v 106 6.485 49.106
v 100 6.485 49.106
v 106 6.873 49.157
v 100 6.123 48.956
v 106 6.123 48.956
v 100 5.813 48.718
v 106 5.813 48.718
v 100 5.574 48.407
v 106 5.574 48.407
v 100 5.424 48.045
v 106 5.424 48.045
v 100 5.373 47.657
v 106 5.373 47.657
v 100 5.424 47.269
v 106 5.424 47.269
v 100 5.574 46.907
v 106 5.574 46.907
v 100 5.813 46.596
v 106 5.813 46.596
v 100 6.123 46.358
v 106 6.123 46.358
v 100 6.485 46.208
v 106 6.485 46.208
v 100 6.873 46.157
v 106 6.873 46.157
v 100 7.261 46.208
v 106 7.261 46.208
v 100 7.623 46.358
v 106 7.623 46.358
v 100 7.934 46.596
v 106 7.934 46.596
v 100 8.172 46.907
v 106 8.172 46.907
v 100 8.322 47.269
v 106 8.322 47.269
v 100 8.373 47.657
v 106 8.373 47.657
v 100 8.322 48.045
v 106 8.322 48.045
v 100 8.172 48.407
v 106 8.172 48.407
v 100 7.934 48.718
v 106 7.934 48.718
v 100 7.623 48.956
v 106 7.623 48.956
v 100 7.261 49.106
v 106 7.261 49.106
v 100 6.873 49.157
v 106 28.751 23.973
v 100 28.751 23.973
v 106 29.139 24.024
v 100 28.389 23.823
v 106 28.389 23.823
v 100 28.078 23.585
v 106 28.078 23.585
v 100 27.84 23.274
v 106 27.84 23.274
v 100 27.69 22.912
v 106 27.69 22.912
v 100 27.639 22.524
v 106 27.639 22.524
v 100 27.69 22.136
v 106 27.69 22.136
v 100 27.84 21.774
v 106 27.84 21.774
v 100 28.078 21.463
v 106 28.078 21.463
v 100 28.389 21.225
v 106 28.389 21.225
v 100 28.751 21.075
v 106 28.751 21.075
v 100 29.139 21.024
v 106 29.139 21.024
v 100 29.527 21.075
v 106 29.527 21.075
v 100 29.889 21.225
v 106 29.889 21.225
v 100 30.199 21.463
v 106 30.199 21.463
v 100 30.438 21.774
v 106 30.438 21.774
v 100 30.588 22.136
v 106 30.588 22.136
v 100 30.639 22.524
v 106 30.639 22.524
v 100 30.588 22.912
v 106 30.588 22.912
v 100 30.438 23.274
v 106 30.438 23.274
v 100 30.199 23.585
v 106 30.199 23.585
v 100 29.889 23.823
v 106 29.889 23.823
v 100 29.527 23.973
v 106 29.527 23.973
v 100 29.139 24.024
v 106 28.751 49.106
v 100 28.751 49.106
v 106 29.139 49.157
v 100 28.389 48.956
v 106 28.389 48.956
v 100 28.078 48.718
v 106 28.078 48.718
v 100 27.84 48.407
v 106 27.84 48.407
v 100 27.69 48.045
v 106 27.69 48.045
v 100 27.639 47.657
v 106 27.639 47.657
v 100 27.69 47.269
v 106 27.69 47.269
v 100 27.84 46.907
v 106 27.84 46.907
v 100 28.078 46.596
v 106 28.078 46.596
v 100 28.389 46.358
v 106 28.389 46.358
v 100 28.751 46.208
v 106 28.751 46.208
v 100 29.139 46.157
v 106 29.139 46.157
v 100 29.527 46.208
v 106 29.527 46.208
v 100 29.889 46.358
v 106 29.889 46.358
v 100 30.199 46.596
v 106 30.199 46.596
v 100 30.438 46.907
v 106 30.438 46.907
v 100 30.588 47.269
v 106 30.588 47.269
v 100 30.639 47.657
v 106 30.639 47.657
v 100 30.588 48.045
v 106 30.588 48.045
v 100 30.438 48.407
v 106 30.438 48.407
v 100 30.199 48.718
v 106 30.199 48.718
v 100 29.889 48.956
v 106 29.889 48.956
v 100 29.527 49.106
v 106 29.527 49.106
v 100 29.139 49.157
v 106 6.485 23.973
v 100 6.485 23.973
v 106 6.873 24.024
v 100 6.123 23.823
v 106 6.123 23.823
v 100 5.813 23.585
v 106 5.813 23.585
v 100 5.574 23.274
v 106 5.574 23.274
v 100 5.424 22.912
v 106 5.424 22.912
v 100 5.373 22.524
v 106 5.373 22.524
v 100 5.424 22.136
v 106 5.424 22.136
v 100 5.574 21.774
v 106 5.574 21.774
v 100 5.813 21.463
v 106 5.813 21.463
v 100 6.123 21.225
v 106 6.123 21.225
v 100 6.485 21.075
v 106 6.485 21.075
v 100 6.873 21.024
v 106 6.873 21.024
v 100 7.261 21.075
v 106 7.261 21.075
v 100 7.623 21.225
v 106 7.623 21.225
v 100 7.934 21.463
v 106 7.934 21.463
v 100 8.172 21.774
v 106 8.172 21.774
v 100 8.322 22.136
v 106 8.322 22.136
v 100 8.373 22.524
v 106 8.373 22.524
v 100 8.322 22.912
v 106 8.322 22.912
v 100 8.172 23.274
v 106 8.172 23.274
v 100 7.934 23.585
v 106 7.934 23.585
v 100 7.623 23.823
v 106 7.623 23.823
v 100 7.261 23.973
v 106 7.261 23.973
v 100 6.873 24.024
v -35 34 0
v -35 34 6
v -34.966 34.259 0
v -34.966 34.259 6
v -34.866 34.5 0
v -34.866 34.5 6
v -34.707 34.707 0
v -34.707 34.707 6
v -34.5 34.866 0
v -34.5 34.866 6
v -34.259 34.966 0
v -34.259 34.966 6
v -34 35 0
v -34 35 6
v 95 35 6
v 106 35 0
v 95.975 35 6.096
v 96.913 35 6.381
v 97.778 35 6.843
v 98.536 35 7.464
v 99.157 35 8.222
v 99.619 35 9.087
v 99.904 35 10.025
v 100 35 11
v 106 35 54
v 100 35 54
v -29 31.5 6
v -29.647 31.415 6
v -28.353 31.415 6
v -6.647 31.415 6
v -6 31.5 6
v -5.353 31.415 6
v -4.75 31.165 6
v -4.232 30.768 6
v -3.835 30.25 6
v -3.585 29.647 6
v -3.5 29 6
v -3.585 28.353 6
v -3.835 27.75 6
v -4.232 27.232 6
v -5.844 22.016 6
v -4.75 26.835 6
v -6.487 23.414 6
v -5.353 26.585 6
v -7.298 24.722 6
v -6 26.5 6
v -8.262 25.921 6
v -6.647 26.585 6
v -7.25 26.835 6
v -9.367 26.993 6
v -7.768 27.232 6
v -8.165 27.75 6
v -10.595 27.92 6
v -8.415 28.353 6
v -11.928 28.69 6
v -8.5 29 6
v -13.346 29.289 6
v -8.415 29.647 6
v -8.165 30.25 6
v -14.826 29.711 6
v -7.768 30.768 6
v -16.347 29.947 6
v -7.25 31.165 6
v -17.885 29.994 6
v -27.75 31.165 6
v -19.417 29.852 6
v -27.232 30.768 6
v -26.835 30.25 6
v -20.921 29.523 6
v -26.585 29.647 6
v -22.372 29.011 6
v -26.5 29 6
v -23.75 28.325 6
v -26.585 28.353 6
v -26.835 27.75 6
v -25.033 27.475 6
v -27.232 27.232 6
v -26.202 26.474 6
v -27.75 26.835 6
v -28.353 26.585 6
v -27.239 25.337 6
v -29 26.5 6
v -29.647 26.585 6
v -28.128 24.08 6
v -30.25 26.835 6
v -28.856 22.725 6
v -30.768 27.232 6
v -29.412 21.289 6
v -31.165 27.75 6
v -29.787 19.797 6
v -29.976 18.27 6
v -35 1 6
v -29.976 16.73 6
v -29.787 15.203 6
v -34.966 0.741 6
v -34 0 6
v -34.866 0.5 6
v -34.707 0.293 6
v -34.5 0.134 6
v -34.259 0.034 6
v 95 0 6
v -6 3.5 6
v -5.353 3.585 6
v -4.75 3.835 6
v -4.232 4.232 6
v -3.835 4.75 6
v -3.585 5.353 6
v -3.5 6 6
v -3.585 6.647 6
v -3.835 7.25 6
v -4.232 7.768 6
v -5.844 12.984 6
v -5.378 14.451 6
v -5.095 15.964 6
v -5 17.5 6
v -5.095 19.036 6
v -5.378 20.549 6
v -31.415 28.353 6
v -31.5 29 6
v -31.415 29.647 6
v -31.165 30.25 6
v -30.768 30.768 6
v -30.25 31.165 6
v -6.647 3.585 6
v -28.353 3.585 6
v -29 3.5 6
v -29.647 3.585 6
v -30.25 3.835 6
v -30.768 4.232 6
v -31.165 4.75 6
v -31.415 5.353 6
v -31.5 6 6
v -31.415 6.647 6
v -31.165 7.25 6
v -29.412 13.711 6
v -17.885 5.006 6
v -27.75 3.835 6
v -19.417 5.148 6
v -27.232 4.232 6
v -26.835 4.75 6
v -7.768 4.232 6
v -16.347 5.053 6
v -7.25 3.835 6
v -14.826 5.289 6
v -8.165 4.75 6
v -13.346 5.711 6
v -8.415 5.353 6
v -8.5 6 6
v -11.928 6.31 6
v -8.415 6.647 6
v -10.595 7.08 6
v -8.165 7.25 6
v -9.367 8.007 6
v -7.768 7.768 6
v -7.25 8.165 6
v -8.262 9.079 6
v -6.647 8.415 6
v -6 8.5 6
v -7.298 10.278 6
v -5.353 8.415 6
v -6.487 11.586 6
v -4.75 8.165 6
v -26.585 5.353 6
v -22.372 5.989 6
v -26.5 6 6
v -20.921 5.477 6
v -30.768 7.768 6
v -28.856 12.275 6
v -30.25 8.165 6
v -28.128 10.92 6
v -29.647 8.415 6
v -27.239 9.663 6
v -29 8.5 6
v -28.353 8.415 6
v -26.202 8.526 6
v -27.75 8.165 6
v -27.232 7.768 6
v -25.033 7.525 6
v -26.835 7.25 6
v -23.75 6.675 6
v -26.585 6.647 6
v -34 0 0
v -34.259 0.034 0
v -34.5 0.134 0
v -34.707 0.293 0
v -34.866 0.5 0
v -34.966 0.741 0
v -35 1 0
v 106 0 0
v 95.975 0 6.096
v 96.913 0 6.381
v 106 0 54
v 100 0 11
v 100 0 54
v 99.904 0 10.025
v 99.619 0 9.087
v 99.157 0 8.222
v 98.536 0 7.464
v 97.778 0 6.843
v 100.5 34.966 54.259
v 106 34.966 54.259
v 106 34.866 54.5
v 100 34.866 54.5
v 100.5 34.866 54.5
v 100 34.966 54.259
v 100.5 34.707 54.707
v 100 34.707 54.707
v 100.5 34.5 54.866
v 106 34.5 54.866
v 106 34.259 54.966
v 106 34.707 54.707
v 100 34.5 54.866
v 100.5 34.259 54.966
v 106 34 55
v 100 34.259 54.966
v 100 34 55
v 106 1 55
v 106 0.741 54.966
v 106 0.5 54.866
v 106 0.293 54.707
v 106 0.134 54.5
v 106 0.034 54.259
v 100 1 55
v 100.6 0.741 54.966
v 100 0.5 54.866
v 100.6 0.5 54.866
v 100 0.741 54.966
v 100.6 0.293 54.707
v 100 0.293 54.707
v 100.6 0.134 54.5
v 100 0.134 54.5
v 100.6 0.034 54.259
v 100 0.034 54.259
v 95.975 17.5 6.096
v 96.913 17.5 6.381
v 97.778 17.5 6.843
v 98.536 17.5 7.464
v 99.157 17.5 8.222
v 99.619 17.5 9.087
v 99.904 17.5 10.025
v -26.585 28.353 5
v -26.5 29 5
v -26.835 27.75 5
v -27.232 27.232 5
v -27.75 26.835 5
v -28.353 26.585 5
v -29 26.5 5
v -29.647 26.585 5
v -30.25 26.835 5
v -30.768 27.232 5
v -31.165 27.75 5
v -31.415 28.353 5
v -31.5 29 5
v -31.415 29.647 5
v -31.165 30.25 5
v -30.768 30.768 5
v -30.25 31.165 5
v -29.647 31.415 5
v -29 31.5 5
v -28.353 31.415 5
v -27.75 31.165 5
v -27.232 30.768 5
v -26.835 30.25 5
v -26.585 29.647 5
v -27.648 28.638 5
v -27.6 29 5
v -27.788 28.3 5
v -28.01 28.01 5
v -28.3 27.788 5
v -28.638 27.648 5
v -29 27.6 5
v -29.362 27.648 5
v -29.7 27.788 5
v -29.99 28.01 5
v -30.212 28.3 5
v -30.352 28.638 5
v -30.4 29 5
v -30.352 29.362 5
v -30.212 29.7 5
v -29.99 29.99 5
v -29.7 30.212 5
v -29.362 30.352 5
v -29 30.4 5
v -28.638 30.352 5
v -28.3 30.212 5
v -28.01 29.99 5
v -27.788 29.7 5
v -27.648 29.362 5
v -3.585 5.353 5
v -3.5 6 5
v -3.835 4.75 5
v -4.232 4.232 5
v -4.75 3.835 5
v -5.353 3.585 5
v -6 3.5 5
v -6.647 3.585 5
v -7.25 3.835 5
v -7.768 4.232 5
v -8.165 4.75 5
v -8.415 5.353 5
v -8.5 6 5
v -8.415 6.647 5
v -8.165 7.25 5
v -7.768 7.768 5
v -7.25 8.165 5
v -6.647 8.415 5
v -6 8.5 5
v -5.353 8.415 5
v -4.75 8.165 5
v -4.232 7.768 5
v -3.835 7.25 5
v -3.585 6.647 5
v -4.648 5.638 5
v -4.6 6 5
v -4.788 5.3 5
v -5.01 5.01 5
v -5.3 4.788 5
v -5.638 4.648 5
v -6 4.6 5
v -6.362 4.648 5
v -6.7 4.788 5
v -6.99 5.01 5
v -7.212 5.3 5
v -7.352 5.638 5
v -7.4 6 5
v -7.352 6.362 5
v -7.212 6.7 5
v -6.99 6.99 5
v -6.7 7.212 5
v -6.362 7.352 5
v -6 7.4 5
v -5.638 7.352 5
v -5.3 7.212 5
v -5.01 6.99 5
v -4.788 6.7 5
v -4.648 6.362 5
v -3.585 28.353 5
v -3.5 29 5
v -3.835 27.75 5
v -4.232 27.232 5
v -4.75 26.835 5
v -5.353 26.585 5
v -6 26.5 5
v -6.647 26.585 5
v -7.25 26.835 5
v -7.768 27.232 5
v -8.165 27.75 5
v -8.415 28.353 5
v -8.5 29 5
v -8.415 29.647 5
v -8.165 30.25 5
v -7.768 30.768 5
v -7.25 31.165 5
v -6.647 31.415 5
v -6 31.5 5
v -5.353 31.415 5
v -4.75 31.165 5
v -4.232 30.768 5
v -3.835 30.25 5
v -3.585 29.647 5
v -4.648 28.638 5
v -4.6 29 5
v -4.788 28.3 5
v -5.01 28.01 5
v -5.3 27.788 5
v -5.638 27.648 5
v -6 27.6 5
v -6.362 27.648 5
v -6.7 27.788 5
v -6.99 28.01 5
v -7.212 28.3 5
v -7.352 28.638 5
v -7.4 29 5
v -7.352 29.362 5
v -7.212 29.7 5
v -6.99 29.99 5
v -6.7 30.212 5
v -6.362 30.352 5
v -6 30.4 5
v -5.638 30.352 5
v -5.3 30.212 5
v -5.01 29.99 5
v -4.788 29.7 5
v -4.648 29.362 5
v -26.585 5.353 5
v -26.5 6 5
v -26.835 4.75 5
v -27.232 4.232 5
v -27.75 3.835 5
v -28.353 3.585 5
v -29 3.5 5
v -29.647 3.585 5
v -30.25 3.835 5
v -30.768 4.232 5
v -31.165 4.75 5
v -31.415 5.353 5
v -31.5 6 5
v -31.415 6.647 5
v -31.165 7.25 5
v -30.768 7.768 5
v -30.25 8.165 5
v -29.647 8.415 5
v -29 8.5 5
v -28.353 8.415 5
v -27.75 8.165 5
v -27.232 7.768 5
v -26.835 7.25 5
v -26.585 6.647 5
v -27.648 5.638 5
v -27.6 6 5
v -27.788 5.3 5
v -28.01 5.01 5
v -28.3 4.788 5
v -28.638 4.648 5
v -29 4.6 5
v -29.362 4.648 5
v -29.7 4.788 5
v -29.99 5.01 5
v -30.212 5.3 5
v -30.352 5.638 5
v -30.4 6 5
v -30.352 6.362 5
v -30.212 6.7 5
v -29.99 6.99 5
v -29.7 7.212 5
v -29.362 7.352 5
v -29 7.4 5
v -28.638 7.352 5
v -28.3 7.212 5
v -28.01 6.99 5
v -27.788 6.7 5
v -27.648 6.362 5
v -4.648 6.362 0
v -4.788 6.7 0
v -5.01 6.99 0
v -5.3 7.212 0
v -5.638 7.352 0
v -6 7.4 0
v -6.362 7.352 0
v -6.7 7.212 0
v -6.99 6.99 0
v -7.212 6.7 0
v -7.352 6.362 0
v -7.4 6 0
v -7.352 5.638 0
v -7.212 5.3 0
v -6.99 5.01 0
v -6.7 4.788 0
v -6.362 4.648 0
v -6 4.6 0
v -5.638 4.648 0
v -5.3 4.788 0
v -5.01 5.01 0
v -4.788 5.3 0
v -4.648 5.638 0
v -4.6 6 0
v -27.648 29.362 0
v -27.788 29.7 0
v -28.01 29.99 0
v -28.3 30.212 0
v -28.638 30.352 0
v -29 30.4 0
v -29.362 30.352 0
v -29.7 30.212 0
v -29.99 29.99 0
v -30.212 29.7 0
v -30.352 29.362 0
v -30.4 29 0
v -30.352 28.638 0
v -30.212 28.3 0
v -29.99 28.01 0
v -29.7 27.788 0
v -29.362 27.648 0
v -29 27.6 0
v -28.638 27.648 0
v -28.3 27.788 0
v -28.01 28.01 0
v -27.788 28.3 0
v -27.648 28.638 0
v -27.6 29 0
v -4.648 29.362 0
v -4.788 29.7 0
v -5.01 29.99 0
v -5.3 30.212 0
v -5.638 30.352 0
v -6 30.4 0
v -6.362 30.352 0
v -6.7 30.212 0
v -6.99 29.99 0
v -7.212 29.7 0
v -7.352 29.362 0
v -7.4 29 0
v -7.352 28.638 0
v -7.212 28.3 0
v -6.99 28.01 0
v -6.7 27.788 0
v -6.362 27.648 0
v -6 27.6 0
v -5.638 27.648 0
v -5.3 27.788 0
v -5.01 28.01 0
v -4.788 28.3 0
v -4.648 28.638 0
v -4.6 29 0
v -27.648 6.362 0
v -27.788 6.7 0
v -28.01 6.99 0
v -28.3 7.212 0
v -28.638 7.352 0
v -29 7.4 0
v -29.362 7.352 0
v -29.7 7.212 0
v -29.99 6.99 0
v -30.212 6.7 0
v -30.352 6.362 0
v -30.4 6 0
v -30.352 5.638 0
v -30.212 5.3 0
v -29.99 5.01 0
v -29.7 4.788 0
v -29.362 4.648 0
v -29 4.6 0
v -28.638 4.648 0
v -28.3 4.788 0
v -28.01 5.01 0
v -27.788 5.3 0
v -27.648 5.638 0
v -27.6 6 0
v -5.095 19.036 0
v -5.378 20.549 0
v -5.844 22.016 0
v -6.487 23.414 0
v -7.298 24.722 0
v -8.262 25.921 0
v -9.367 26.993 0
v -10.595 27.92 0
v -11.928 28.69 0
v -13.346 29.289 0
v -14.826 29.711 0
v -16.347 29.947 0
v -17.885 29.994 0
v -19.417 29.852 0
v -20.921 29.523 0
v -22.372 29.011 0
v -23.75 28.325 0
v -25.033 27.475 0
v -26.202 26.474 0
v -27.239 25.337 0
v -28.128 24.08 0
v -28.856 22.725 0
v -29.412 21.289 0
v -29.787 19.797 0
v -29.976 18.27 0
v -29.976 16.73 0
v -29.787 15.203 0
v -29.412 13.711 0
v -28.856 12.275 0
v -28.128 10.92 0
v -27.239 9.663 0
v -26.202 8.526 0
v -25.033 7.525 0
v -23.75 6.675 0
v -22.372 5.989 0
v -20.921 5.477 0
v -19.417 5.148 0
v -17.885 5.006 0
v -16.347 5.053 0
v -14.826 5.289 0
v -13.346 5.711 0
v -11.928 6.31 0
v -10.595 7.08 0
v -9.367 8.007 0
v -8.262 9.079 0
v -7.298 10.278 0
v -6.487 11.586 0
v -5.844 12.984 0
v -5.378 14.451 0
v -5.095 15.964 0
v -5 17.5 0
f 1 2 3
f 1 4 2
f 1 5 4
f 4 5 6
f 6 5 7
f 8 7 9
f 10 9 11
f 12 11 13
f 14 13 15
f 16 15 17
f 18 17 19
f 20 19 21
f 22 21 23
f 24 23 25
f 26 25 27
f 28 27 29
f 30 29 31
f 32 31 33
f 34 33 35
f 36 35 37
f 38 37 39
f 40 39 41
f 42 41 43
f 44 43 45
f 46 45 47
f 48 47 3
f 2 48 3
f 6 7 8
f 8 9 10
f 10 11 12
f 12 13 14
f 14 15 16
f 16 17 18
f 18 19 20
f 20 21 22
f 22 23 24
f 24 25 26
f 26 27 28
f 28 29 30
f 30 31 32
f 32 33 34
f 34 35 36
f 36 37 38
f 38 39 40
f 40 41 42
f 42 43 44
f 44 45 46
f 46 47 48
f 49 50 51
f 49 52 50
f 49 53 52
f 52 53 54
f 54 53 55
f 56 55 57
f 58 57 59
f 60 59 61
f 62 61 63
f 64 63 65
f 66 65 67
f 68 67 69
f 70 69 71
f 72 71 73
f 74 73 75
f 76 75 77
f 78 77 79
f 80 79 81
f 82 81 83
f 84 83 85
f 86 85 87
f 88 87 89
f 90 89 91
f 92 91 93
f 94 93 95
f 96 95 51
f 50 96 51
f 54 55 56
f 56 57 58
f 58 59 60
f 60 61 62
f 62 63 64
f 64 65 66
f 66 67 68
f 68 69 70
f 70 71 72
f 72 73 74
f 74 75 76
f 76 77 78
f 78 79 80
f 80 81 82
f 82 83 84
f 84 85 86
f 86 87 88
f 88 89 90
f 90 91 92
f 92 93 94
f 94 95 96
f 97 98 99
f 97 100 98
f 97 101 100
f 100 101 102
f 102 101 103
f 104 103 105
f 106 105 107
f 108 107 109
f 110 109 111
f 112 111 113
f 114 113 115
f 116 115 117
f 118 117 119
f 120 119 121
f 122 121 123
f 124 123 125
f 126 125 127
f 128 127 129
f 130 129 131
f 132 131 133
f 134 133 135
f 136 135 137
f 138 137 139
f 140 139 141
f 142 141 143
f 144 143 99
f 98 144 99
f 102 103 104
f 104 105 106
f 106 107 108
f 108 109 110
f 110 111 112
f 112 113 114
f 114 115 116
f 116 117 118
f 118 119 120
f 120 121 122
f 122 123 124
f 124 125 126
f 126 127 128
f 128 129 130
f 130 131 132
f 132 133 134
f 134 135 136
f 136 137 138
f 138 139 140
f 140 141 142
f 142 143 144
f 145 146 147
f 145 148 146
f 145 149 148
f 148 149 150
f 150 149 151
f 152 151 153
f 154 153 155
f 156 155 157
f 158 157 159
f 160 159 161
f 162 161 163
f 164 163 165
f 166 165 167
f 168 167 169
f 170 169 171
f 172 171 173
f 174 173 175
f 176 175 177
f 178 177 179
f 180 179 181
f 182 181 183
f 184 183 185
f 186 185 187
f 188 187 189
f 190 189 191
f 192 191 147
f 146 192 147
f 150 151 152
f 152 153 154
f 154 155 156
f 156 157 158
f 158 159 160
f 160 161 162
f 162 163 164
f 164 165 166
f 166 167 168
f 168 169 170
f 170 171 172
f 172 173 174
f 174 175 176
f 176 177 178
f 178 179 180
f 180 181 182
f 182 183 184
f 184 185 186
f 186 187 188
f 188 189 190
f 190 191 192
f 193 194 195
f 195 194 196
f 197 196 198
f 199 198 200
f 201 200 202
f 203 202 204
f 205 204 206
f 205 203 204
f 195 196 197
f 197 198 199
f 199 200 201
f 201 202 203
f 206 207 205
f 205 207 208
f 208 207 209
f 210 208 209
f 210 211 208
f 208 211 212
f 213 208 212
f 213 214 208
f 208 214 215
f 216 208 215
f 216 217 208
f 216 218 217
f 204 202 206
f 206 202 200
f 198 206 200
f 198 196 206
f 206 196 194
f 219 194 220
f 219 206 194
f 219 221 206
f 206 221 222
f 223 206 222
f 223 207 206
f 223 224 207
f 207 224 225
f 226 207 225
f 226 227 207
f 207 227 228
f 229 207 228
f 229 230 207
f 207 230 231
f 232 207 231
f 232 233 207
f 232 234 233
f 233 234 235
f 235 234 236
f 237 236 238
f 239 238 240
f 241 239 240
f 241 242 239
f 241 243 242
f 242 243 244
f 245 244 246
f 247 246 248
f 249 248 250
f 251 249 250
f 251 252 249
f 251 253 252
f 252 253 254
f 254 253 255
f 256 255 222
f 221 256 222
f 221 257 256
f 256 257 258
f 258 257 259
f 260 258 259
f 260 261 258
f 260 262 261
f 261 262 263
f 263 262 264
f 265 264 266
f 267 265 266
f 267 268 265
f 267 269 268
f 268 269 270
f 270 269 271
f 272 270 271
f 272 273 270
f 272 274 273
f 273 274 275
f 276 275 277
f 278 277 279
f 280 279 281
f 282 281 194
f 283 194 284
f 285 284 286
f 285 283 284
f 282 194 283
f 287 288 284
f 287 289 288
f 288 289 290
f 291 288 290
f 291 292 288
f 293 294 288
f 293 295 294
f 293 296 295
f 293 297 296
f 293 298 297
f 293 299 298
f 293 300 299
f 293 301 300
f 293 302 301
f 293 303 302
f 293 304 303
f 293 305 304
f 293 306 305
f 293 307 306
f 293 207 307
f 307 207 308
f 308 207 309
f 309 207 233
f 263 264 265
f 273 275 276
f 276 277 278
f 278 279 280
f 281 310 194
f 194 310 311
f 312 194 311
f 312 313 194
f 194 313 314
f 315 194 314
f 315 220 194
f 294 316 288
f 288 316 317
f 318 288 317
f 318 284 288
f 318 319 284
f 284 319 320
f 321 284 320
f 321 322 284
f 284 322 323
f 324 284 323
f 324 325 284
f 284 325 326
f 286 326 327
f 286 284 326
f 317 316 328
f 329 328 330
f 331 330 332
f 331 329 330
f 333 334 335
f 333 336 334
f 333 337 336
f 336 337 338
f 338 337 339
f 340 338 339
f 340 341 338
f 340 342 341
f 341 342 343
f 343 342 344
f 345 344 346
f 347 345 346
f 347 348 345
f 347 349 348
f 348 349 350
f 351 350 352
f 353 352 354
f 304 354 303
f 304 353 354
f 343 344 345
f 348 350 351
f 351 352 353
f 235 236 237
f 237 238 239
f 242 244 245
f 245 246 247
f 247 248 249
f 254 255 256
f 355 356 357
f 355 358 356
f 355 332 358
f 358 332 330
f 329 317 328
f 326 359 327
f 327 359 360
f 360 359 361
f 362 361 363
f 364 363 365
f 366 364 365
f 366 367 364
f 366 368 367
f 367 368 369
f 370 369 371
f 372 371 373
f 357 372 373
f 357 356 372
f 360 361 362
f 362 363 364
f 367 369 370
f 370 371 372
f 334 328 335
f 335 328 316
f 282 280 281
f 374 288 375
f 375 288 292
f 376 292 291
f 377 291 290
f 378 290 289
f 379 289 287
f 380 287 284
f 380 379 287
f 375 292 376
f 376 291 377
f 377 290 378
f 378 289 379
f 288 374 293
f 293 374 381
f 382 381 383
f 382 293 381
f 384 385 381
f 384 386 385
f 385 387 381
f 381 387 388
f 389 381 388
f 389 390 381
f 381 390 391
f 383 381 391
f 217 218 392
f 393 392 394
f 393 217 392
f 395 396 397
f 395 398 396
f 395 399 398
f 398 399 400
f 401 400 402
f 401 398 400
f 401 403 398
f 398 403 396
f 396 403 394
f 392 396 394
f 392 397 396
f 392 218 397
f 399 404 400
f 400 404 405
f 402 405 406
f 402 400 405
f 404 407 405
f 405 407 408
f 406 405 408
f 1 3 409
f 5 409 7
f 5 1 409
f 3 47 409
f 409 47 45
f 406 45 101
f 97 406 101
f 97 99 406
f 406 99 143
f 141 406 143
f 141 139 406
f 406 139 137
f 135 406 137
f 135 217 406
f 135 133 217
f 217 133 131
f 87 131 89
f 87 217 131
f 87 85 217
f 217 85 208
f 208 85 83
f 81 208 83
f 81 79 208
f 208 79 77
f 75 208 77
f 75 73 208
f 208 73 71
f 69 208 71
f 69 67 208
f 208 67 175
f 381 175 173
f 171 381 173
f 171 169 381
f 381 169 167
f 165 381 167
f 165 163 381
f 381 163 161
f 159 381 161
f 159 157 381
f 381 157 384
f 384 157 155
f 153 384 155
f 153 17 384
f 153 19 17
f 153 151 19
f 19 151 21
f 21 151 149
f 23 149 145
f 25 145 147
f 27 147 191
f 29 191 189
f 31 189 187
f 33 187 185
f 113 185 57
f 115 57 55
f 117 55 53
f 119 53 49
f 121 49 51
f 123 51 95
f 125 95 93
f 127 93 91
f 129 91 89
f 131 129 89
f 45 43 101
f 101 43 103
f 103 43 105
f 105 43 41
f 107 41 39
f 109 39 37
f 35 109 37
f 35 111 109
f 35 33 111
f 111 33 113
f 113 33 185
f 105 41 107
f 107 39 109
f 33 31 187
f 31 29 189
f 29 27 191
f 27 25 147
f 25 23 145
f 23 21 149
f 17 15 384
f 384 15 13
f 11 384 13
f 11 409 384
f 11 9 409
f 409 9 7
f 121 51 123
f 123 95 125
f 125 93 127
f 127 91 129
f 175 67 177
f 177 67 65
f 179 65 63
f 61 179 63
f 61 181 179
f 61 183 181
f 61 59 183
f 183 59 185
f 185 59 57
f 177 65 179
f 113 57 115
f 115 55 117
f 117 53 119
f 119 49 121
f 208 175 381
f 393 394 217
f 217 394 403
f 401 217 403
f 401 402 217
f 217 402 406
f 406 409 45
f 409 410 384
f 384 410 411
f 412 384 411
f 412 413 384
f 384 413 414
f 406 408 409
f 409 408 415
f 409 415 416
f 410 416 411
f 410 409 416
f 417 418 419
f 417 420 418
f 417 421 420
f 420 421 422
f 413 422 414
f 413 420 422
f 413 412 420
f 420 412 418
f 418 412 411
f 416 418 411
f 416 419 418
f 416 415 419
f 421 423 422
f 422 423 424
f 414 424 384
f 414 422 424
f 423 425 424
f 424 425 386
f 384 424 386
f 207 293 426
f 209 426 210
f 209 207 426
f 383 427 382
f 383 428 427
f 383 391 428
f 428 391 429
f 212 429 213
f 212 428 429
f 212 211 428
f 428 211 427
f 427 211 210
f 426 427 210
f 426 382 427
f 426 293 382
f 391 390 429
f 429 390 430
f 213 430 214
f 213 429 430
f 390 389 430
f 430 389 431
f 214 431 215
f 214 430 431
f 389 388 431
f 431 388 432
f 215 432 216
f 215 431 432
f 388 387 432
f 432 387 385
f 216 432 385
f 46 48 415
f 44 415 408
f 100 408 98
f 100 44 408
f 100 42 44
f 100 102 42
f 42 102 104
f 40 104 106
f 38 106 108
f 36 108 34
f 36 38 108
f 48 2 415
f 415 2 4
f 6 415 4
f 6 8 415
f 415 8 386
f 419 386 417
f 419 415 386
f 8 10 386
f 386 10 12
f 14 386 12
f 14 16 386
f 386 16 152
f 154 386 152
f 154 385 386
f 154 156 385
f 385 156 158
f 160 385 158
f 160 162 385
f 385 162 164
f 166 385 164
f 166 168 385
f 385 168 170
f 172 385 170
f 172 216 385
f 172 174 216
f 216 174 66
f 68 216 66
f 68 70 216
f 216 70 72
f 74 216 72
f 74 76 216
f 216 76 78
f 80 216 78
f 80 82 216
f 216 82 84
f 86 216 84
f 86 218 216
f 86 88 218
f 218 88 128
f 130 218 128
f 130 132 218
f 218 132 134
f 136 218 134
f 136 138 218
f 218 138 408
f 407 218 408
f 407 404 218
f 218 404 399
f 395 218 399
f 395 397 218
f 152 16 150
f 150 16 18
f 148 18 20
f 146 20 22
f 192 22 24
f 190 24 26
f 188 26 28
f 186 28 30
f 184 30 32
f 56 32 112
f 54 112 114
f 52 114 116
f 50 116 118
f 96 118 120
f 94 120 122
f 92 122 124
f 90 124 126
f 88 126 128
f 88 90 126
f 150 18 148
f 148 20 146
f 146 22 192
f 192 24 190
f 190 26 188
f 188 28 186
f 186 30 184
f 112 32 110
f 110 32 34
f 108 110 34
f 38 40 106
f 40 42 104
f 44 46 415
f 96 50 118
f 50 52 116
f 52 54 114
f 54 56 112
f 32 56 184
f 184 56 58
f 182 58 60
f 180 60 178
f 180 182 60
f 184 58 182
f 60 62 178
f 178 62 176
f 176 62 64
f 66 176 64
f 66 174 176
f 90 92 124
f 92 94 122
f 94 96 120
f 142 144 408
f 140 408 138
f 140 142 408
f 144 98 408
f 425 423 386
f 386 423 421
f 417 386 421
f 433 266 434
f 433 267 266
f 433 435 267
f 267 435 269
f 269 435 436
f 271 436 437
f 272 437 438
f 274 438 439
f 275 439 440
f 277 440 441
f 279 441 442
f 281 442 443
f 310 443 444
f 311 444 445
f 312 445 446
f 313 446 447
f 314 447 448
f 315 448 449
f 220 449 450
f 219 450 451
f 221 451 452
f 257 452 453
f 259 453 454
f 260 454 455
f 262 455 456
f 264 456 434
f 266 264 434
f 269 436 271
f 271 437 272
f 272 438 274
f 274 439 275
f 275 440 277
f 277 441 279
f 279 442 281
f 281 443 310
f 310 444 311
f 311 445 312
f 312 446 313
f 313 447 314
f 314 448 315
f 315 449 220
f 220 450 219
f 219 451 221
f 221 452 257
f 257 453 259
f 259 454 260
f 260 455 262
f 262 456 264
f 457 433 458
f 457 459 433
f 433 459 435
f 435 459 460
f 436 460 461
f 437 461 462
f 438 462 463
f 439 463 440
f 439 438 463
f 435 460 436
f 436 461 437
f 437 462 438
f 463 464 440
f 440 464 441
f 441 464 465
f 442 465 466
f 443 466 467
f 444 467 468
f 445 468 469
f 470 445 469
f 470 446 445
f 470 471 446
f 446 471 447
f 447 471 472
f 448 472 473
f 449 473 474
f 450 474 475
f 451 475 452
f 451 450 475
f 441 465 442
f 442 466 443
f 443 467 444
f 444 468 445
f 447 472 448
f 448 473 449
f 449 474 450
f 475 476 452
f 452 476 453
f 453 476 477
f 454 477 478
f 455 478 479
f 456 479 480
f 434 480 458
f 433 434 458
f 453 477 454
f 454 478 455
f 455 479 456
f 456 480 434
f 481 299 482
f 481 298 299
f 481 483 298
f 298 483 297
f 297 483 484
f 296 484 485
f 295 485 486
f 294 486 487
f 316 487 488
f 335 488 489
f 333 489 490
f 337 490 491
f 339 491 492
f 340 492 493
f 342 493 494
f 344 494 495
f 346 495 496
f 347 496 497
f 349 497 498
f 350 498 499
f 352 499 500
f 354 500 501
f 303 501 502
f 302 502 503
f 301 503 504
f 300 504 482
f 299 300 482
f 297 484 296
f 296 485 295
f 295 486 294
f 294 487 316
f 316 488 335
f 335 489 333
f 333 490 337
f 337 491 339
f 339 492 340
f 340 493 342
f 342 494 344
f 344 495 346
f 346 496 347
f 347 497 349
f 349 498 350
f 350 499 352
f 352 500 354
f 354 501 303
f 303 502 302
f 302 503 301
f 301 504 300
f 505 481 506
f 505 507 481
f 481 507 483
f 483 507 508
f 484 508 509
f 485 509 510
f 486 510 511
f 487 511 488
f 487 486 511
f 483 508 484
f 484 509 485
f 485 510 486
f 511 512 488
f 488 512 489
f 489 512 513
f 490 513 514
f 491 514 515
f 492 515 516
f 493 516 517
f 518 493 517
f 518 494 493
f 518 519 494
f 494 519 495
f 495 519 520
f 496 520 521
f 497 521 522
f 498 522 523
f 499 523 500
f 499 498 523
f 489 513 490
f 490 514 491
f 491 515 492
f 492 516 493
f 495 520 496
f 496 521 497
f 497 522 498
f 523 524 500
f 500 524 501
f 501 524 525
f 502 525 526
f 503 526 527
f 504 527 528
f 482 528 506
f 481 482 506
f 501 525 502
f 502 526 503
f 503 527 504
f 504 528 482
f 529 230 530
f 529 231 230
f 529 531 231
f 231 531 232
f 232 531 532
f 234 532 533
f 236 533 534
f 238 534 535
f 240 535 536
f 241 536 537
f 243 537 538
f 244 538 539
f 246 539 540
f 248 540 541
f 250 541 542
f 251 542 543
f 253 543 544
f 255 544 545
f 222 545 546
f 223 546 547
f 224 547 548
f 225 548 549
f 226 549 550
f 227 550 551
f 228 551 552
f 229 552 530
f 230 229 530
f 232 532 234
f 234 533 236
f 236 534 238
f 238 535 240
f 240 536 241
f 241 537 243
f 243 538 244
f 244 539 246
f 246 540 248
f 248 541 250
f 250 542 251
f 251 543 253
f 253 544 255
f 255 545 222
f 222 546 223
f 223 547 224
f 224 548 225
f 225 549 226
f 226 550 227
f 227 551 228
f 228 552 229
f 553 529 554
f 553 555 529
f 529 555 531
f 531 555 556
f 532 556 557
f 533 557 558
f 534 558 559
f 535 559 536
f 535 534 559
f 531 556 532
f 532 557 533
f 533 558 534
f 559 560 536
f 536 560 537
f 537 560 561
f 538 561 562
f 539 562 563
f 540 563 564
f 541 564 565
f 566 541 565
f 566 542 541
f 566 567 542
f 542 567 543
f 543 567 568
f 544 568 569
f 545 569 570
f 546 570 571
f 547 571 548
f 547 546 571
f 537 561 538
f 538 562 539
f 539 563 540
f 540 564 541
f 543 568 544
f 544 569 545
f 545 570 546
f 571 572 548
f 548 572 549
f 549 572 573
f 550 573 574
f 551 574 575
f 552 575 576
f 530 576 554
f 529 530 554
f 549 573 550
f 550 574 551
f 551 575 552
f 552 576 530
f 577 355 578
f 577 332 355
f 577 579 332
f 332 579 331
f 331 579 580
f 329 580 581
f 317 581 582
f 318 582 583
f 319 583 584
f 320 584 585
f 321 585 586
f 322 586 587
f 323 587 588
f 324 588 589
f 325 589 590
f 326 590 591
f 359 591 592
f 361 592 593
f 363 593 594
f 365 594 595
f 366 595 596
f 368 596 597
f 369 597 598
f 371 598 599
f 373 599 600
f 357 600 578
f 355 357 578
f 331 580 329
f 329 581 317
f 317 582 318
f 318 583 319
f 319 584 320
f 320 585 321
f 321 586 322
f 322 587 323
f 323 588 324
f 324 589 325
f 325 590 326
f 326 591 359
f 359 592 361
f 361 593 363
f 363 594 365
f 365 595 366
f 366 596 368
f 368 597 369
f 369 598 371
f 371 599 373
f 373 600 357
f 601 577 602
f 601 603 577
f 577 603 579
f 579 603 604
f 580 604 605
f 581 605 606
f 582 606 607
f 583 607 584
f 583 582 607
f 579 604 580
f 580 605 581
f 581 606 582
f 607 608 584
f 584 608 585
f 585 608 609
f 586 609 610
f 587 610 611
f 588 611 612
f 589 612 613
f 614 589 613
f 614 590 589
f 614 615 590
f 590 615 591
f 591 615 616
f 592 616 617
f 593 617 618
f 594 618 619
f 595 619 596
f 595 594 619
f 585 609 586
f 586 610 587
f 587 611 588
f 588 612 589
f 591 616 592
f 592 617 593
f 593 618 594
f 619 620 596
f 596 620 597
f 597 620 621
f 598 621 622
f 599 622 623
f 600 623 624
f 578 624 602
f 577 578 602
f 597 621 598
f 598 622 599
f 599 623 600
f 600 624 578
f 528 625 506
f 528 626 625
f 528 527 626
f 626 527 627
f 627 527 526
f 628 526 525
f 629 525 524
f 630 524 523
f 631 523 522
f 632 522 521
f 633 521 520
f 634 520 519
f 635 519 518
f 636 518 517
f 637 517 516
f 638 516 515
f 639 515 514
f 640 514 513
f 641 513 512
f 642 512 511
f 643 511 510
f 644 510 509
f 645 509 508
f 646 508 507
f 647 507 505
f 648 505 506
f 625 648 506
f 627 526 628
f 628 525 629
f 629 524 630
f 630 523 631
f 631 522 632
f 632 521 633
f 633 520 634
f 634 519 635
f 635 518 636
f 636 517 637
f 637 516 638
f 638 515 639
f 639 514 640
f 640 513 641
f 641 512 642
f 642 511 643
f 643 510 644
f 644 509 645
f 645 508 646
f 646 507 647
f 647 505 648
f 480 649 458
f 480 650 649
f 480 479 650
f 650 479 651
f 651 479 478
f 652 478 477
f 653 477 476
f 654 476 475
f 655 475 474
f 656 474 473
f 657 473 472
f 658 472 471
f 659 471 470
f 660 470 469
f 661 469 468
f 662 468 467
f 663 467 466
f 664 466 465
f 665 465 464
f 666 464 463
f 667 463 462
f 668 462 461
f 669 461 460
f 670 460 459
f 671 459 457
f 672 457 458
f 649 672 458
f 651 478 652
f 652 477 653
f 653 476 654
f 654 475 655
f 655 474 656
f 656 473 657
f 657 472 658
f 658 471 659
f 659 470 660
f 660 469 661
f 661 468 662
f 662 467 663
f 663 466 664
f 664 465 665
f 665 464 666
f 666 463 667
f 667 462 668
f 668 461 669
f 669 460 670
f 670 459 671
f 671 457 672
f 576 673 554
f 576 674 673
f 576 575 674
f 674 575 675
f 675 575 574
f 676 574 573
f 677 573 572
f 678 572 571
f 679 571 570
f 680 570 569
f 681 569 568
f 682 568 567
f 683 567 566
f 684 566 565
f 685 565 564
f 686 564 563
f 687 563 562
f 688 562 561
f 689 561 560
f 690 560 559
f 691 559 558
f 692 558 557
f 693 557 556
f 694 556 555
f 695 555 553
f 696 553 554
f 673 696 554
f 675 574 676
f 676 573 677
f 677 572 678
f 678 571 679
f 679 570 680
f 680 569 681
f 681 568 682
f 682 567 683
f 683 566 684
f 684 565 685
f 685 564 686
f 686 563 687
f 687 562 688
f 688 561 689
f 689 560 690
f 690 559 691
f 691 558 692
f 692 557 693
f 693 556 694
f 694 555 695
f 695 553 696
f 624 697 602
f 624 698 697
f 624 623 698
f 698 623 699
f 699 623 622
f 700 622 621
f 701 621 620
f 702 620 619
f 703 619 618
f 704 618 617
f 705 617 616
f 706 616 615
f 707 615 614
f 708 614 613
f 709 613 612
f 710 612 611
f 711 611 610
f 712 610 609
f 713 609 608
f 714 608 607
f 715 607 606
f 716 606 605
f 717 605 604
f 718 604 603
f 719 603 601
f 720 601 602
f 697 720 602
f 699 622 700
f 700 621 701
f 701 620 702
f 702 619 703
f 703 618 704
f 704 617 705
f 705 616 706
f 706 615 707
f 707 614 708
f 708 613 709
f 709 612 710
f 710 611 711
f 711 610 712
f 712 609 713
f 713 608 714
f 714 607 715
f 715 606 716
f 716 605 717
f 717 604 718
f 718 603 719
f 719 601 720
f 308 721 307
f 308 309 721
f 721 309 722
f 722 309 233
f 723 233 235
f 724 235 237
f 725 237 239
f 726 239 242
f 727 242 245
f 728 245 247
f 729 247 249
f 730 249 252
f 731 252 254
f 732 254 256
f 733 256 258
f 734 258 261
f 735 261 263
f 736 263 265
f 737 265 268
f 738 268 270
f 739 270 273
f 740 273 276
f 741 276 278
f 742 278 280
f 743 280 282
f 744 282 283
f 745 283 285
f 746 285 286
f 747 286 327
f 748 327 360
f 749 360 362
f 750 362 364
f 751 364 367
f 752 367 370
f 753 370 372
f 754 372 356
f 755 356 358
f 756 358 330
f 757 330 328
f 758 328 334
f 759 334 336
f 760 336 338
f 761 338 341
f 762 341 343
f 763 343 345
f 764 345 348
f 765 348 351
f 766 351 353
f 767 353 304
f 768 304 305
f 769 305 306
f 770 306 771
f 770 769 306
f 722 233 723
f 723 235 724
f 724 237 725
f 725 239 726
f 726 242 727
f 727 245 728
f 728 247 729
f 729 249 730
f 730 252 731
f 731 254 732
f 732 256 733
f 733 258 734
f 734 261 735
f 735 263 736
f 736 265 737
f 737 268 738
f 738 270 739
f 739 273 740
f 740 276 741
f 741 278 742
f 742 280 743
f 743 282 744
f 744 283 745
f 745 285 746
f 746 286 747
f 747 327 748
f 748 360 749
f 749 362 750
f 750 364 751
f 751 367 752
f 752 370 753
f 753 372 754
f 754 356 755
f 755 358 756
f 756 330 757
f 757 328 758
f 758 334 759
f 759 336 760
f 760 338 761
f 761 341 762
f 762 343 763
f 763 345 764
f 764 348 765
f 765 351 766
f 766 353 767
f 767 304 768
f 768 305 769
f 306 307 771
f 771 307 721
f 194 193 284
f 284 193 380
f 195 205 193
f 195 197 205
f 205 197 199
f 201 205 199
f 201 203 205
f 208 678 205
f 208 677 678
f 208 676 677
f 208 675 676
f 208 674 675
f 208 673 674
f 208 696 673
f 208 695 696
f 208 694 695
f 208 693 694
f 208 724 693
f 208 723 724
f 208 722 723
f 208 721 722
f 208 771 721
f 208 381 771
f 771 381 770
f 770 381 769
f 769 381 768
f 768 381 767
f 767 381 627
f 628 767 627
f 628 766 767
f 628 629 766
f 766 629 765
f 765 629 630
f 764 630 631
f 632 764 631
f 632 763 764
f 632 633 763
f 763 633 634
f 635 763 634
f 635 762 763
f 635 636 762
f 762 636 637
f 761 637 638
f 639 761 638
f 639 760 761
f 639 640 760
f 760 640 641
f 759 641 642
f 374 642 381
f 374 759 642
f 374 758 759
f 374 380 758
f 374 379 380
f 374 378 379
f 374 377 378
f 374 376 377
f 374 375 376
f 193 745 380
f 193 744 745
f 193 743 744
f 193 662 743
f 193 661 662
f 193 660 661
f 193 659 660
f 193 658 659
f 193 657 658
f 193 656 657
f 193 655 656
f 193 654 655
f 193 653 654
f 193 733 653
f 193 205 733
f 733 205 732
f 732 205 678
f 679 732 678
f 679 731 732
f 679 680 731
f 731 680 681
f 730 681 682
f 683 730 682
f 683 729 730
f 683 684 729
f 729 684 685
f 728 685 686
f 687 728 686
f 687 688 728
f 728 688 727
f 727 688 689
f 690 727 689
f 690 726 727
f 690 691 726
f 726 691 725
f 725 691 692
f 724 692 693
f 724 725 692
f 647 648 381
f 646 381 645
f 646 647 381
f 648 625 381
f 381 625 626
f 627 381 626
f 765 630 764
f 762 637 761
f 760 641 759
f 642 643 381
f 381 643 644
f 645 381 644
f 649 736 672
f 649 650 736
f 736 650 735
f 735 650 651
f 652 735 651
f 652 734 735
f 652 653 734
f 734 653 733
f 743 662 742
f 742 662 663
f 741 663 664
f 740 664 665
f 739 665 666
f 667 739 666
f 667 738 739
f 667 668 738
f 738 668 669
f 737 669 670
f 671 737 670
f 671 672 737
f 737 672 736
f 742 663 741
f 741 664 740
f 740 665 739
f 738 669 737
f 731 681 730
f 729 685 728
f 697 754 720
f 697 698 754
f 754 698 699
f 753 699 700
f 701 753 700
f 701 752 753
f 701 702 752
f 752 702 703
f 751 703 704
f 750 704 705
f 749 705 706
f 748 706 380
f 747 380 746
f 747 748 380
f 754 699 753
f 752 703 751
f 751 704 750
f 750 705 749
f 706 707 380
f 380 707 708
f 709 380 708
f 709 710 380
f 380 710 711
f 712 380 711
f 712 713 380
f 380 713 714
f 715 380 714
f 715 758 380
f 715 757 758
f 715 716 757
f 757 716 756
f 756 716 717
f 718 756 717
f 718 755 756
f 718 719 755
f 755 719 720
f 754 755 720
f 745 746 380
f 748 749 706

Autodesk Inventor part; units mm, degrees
ref_plane "YZ Plane" through (0, 0, 0) normal (1, 0, 0) x (0, 1, 0)
ref_plane "XZ Plane" through (0, 0, 0) normal (0, 1, 0) x (-1, 0, 0)
ref_plane "XY Plane" through (0, 0, 0) normal (0, 0, 1) x (1, 0, 0)
sketch "Skizze1" plane through (0, 0, 0) normal (0, 0, 1) x (1, 0, 0)
  line L0 (0, 0) -> (-35, 0)
  line L1 (-35, 0) -> (-35, 35)
  line L2 (-35, 35) -> (0, 35)
  line L3 (0, 35) -> (0, 0)
  dimension "d0" = 35
  dimension "d1" = 35
extrude "NEMA11 Halter" add sketch "Skizze1" along normal blind 6
sketch "Skizze2" plane through (0, 0, 6) normal (0, 0, 1) x (1, 0, 0)
  circle A0 centre (-17.5, 17.5) radius 12.5
  dimension "d4" = 25
extrude "Motorloch" cut sketch "Skizze2" against normal up to surface (6 mm away)
sketch "Skizze3" plane through (0, 0, 6) normal (0, 0, 1) x (1, 0, 0)
  circle A0 centre (-29, 29) radius 1.4
  circle A1 centre (-17.5, 17.5) radius 12.5 projected
  line L0 (-35, 0) -> (-35, 35) projected
  line L1 (0, 0) -> (-35, 0) projected
  line L2 (0, 35) -> (0, 0) projected
  line L3 (-35, 35) -> (0, 35) projected
  circle A2 centre (-6, 29) radius 1.4
  circle A3 centre (-29, 6) radius 1.4
  circle A4 centre (-6, 6) radius 1.4
  dimension "d7" = 2.8
  dimension "d8" = 2.8
  dimension "d9" = 23
  dimension "d10" = 2.8
  dimension "d11" = 23
  dimension "d12" = 2.8
  dimension "d13" = 23
  dimension "d14" = 23
extrude "Motorschrauben" cut sketch "Skizze3" against normal up to surface (6 mm away) contours A0 | A2 | A3 | A4
sketch "Skizze22" plane through (0, 0, 6) normal (0, 0, 1) x (1, 0, 0)
  circle A0 centre (-6, 6) radius 1.4 projected
  circle A1 centre (-29, 29) radius 1.4 projected
  circle A2 centre (-6, 29) radius 1.4 projected
  circle A3 centre (-29, 6) radius 1.4 projected
  circle A4 centre (-29, 29) radius 2.5
  circle A5 centre (-6, 29) radius 2.5
  circle A6 centre (-6, 6) radius 2.5
  circle A7 centre (-29, 6) radius 2.5
  dimension "d78" = 5
  dimension "d79" = 5
  dimension "d80" = 5
  dimension "d81" = 5
extrude "Extrusion16" cut sketch "Skizze22" against normal blind 1
sketch "Skizze23" plane through (0, 0, 6) normal (0, 0, 1) x (1, 0, 0)
  line L0 (0, 35) -> (100, 35)
  line L1 (100, 35) -> (100, 0)
  line L2 (100, 0) -> (0, 0)
  line L3 (0, 0) -> (0, 35)
  dimension "d84" = 100
extrude "Extrusion17" add sketch "Skizze23" against normal blind 6
sketch "Skizze24" plane through (-35, 0, 0) normal (0, -1, 0) x (1, 0, 0)
  line L0 (135, 0) -> (141, 0)
  line L1 (141, 0) -> (141, 55)
  line L2 (141, 55) -> (135, 55)
  line L3 (135, 55) -> (135, 0)
  point P0 (35, 0)
  dimension "d87" = 6
  dimension "d88" = 55
extrude "Extrusion18" add sketch "Skizze24" against normal up to surface (35 mm away)
fillet "Rundung8" radius 5 1 edges at (100, 17.5, 6)
fillet "Rundung9" radius 1 2 edges at (103, 0, 55) (103, 35, 55)
fillet "Rundung10" radius 1 2 edges at (-35, 0, 3) (-35, 35, 3)
sketch "Skizze25" plane through (100, 0, 11) normal (-1, 0, 0) x (0, 0, 1)
  circle A0 centre (36.6571, 29.1388) radius 1.5
  circle A1 centre (36.6571, 6.8732) radius 1.5
  circle A2 centre (11.524, 29.1388) radius 1.5
  circle A3 centre (11.524, 6.8732) radius 1.5
  point P0 (-11, 0)
  dimension "d94" = 3
  dimension "d95" = 3
  dimension "d96" = 3
  dimension "d97" = 3
extrude "Extrusion19" cut sketch "Skizze25" against normal up to surface (6 mm away)
properties part number "Einfach Nema"
